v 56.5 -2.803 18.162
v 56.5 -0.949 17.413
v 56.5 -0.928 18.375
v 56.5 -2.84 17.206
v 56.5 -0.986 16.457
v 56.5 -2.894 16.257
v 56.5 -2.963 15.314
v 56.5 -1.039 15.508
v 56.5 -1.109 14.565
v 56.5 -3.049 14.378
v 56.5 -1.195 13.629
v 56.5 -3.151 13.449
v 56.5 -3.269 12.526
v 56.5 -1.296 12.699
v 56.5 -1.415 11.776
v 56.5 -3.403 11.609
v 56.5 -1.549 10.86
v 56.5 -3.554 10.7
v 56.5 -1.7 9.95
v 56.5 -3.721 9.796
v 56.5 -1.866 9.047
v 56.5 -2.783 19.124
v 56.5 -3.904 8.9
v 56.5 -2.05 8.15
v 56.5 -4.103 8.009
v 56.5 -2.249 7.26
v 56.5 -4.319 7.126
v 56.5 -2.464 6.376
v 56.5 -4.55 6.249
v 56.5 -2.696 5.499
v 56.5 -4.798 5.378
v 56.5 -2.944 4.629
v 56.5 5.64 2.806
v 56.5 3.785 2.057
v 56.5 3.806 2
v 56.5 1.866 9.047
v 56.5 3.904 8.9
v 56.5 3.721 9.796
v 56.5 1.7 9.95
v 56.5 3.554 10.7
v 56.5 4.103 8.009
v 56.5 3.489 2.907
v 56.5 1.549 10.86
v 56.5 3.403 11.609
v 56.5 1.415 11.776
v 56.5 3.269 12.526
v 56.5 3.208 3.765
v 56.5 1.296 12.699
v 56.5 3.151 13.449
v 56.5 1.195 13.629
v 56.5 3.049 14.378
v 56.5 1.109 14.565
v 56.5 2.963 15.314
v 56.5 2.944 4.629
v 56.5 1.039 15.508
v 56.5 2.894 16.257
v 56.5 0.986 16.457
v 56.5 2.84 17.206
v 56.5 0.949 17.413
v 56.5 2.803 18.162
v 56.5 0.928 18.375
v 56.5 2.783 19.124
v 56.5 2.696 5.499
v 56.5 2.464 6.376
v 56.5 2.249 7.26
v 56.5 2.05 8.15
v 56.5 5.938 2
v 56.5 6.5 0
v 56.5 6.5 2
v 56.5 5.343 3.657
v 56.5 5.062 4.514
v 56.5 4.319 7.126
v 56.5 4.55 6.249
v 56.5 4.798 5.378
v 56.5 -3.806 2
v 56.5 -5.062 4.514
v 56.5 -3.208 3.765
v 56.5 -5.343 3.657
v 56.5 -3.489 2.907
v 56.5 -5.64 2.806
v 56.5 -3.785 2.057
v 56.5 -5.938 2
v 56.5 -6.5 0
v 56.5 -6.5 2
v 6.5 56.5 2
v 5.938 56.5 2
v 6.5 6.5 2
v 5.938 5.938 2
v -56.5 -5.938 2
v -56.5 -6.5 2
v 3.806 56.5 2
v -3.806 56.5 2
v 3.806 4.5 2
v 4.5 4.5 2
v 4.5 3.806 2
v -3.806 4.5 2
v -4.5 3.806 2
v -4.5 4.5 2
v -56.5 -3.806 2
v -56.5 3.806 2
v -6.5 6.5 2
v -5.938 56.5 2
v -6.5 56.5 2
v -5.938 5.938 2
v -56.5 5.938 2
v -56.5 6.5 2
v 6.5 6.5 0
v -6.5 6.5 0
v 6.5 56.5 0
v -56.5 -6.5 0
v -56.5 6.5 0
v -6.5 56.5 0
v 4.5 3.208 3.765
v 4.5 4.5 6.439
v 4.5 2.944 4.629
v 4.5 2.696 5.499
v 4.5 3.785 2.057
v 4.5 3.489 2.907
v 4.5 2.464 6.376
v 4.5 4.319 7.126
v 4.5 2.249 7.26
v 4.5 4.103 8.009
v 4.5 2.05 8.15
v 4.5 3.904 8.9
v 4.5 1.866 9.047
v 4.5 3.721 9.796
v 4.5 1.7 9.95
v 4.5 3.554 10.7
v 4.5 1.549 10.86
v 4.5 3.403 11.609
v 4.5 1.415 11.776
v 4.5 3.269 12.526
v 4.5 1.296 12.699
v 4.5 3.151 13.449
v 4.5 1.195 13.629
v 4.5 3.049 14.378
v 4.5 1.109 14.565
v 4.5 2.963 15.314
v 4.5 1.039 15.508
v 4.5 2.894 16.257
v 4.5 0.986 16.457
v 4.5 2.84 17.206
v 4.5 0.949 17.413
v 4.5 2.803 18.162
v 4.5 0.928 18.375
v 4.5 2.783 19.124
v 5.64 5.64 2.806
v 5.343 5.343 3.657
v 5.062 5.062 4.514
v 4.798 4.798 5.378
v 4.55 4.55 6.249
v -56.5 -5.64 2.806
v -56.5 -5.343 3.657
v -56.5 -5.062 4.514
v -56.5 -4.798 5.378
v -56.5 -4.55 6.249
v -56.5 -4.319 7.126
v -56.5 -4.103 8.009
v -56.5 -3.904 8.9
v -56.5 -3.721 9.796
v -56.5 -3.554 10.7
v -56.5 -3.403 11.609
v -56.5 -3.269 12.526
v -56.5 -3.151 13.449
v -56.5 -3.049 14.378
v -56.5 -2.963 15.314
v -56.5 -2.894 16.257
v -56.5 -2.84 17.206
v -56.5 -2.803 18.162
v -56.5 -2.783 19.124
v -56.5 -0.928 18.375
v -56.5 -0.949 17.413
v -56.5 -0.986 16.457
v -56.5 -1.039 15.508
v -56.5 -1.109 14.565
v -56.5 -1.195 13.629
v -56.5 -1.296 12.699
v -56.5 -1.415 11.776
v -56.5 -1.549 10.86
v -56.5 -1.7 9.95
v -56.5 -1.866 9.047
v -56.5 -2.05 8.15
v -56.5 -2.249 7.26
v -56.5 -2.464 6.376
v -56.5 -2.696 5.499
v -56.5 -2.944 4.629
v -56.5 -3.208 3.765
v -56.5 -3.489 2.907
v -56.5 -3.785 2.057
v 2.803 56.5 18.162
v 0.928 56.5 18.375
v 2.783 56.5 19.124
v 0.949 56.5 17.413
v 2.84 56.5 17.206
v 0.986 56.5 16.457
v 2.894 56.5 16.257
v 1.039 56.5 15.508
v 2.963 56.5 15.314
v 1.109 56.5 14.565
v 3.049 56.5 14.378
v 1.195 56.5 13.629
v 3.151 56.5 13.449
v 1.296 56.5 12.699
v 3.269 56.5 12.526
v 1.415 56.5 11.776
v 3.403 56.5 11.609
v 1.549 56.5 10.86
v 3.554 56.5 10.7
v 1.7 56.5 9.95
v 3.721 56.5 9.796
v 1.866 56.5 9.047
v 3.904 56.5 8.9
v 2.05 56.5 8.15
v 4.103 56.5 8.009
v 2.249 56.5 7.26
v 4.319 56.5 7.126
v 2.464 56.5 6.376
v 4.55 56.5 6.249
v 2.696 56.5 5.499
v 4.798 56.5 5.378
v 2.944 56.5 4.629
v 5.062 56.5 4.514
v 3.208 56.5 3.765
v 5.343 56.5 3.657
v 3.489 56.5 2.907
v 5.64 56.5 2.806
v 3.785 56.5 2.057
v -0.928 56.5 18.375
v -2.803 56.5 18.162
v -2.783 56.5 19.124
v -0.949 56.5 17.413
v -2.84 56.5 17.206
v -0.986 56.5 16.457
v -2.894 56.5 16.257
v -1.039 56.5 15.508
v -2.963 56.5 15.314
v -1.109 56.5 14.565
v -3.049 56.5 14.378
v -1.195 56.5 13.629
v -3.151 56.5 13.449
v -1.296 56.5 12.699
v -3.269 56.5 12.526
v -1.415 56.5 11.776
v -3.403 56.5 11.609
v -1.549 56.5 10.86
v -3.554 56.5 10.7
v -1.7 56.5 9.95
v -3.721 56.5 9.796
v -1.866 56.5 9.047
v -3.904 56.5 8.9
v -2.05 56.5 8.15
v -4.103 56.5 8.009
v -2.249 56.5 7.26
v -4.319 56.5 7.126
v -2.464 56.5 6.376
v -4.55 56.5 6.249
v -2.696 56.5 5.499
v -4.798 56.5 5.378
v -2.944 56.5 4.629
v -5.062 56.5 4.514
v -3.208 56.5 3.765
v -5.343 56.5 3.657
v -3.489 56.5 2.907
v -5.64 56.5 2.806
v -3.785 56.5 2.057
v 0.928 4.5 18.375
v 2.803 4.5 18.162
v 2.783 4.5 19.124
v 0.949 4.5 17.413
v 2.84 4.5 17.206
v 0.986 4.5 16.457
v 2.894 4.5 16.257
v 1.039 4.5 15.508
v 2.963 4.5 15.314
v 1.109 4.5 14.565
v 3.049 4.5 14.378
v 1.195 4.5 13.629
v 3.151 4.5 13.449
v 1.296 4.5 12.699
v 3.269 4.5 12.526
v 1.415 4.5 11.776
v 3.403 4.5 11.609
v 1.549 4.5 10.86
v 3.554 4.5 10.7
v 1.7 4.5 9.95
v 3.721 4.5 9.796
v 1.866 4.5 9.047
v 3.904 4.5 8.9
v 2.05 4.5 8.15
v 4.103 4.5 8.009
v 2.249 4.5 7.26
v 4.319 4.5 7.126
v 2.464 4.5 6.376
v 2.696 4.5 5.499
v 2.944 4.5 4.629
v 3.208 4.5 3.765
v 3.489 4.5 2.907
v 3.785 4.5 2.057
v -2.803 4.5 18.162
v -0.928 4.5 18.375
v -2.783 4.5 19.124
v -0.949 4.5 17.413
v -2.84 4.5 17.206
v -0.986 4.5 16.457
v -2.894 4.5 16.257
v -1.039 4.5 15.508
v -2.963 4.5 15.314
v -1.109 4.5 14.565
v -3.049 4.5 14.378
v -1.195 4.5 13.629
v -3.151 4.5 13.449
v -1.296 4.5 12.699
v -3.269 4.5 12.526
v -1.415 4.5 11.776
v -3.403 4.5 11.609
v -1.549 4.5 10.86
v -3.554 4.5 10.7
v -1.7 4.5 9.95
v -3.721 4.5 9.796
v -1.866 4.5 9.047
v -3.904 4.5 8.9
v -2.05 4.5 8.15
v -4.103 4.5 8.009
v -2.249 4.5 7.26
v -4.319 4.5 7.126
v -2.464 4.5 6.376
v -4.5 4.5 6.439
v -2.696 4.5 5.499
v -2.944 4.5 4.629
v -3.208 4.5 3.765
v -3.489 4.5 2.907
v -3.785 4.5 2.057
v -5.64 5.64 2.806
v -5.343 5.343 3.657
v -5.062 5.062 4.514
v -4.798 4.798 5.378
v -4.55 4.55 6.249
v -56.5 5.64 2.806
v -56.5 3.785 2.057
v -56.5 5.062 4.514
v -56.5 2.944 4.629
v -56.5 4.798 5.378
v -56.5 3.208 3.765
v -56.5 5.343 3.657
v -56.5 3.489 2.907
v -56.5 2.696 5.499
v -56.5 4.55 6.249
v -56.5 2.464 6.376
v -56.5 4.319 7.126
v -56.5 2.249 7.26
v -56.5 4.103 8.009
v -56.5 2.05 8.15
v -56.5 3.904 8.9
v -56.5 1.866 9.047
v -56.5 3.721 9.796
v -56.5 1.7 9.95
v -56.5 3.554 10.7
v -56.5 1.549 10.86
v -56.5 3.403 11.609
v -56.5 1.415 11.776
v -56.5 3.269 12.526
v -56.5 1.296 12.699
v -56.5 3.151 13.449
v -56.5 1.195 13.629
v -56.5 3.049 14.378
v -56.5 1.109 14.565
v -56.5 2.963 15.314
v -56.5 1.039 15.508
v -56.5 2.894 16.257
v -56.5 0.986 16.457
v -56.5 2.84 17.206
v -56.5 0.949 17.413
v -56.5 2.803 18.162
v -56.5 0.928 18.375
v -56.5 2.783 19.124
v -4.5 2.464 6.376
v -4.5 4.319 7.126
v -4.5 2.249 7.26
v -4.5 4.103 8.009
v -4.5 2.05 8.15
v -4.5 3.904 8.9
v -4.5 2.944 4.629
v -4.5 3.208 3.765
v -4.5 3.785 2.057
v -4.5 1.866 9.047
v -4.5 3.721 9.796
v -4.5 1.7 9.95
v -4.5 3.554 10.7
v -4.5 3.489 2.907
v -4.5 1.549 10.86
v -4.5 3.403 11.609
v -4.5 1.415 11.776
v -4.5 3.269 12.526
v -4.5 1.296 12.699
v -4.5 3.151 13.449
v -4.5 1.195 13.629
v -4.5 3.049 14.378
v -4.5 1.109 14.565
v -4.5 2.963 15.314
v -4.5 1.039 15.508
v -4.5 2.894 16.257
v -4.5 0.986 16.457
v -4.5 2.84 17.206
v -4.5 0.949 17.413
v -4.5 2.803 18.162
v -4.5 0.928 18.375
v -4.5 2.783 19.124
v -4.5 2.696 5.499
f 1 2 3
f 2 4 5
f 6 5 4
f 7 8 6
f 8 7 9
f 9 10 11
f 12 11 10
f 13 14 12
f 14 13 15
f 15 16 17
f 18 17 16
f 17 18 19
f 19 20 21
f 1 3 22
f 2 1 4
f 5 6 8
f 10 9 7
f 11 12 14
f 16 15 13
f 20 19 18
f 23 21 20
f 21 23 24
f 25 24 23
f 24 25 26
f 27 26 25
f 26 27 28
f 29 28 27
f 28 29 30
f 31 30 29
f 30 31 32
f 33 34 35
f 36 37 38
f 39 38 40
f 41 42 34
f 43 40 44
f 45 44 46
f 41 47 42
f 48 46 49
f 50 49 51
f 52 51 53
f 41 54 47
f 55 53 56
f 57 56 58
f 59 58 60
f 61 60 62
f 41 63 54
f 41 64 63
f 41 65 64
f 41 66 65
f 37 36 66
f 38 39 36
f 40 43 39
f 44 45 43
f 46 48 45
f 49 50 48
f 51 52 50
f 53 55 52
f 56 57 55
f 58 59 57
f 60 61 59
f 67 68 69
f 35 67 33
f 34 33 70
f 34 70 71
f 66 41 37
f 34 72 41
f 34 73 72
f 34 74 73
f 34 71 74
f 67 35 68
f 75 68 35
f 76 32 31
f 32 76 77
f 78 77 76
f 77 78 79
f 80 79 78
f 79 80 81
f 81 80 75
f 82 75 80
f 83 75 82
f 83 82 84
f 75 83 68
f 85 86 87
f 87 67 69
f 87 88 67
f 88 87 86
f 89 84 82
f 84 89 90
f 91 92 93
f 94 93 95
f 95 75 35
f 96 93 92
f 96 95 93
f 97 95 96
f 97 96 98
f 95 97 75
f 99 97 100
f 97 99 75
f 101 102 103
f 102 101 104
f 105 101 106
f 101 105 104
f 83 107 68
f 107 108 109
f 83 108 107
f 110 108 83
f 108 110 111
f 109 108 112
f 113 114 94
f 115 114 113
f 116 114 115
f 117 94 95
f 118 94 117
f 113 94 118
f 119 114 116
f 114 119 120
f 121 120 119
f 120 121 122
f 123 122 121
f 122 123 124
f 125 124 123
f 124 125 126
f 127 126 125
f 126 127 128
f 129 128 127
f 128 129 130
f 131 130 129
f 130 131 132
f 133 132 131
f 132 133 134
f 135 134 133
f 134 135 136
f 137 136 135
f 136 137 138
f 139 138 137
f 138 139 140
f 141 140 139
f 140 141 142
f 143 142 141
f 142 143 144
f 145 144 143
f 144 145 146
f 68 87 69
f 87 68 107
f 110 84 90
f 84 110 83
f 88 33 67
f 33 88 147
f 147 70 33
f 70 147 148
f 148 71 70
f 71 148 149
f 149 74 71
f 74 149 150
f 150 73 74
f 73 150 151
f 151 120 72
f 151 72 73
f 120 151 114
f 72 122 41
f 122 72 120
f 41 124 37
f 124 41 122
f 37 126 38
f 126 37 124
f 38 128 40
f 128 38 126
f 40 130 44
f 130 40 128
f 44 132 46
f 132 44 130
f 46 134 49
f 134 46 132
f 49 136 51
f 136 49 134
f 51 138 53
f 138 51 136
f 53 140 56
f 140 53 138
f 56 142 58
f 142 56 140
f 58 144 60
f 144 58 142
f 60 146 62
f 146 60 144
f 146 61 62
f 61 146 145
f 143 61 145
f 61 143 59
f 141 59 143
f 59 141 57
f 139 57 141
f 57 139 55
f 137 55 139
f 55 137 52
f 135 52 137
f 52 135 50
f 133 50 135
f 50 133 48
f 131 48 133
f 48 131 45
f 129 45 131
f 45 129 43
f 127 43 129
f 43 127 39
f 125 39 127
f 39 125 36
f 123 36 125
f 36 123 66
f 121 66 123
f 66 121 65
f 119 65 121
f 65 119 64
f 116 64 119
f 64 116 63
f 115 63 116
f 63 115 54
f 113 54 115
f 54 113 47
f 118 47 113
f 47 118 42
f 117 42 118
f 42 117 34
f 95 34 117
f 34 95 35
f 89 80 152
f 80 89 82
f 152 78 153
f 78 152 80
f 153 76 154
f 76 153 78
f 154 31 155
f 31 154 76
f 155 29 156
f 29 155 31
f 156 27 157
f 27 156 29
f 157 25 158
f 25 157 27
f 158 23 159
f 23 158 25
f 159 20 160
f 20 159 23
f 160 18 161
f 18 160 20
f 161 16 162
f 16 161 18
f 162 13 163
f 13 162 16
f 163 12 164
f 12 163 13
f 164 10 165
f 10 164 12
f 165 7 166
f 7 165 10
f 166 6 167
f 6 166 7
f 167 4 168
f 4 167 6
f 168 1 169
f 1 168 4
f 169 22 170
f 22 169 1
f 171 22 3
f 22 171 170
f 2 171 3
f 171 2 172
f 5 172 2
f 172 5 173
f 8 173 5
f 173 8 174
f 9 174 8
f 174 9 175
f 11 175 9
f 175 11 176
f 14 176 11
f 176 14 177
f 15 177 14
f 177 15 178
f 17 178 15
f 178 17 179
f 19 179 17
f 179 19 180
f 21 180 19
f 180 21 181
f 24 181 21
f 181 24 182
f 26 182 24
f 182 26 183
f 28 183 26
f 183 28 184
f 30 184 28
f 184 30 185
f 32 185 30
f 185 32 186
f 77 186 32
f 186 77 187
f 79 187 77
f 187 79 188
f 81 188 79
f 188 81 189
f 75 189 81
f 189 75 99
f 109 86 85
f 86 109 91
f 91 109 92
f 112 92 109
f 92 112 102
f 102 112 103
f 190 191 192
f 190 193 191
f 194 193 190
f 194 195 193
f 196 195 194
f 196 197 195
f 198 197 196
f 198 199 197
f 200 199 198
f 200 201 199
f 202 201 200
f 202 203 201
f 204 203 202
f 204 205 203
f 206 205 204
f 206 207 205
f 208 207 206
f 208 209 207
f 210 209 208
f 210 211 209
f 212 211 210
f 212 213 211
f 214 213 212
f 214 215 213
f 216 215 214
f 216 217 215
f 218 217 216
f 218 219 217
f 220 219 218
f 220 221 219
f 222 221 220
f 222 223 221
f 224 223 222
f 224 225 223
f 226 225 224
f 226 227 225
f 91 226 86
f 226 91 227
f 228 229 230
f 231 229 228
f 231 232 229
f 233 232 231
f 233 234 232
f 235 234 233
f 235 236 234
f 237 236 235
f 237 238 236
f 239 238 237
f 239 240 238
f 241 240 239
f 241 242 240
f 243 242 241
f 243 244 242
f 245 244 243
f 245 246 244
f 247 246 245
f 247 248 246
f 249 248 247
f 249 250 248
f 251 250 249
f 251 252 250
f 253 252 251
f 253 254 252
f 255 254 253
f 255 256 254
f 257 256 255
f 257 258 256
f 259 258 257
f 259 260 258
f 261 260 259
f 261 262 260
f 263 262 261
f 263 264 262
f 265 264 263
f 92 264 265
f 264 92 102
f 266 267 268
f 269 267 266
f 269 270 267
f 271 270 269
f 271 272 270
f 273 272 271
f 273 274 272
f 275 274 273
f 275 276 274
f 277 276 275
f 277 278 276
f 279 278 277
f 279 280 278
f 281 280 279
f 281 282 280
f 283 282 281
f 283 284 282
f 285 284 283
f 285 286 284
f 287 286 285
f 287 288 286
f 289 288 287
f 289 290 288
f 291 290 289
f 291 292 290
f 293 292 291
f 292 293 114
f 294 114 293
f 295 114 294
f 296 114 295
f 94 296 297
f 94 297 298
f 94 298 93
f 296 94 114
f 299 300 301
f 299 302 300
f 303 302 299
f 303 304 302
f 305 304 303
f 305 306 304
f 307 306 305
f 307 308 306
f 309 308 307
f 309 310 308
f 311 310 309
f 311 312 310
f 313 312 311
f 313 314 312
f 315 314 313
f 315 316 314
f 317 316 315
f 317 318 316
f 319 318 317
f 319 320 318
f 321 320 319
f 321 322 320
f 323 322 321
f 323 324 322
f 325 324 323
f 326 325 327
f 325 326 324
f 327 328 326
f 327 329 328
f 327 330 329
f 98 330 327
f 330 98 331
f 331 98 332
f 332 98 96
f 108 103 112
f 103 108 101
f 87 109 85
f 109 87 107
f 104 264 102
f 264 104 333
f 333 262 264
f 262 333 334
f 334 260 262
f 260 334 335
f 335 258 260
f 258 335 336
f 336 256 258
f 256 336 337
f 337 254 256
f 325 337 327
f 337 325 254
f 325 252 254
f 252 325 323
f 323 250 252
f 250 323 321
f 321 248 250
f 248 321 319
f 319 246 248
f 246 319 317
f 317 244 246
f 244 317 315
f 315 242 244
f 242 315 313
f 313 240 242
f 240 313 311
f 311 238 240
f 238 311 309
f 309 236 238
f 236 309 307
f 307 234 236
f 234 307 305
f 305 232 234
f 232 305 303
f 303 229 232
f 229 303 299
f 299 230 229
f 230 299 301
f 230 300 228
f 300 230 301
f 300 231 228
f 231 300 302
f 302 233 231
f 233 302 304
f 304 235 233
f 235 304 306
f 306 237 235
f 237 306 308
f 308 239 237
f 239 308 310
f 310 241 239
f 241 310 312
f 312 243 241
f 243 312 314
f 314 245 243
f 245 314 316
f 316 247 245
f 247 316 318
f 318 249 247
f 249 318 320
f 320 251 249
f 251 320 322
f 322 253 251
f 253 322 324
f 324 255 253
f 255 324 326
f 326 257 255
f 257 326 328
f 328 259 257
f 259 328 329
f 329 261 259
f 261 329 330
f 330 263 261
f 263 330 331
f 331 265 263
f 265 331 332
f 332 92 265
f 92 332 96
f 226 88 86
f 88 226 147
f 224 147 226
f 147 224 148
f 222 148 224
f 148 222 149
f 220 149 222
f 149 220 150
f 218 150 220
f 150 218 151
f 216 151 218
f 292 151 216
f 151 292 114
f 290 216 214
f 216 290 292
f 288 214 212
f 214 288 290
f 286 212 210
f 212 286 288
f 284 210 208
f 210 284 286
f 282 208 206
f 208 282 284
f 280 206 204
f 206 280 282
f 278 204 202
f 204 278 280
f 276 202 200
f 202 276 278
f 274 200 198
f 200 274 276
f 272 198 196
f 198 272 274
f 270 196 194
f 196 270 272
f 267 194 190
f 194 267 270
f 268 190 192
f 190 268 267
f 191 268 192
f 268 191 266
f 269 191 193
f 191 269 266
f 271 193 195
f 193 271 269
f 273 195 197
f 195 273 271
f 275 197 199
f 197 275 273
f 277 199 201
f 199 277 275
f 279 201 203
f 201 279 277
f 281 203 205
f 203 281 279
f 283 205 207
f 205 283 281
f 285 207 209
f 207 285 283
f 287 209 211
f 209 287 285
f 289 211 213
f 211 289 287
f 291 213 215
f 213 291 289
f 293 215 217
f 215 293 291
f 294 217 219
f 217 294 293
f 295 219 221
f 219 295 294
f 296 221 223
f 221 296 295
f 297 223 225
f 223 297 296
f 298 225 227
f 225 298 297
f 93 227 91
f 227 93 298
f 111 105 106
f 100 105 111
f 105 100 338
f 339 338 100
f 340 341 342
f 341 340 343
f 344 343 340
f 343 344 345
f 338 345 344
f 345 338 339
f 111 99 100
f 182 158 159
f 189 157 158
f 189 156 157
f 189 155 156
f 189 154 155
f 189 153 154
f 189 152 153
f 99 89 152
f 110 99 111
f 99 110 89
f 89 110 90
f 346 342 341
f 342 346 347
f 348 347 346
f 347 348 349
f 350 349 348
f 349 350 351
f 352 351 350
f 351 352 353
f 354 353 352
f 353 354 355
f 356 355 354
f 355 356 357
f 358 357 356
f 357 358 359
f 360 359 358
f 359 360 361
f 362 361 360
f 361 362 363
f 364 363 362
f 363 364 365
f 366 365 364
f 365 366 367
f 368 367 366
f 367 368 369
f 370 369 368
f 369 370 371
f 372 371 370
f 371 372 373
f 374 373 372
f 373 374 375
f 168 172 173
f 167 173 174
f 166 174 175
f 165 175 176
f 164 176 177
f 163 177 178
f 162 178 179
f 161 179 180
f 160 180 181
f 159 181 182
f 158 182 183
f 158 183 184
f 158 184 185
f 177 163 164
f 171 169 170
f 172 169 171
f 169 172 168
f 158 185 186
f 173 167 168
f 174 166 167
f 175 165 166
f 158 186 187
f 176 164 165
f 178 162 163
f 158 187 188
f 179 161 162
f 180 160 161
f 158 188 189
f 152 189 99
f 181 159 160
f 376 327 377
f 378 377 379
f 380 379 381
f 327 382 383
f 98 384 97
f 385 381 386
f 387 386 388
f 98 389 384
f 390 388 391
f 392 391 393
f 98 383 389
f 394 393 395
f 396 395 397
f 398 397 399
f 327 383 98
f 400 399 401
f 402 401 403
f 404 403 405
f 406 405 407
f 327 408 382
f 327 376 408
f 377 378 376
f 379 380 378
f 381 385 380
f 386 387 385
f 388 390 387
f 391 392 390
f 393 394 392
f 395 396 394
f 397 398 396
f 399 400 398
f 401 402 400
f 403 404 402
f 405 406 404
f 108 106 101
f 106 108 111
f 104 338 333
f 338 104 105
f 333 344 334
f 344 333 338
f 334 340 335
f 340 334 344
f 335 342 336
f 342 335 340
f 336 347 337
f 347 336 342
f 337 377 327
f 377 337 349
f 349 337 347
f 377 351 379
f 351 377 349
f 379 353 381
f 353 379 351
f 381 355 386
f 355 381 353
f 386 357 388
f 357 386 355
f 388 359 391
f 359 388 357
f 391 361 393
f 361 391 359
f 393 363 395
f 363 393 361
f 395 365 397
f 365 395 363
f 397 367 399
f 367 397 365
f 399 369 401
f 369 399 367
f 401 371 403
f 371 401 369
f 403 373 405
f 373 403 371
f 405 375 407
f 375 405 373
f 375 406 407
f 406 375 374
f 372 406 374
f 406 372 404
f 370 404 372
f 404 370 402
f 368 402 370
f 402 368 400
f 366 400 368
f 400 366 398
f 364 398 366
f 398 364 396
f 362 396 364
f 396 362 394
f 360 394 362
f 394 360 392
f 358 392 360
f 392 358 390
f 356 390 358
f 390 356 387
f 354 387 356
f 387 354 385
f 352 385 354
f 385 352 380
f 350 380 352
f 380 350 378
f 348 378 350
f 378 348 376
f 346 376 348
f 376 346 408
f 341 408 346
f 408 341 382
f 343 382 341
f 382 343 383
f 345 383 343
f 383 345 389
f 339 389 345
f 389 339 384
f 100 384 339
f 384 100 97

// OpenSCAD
use <common.scad>

// T-образный соединитель с гибкими стенками (3 выхода)
// Выходы: право (0), перед (1), лево (2)
// Гибкие стенки для картона

union() {
    // Основание центра
    draw_center_base(with_dowel = false);

    // Гибкая стенка центра на одной стороне без выхода
    place_center_wall(3, "flexible");  // назад - закрыто гибкой стенкой

    // Рукава на трех сторонах с гибкими стенками
    place_sleeve(0, with_dowel = false, wall_type = "flexible");  // право
    place_sleeve(1, with_dowel = false, wall_type = "flexible");  // перед
    place_sleeve(2, with_dowel = false, wall_type = "flexible");  // лево
}
